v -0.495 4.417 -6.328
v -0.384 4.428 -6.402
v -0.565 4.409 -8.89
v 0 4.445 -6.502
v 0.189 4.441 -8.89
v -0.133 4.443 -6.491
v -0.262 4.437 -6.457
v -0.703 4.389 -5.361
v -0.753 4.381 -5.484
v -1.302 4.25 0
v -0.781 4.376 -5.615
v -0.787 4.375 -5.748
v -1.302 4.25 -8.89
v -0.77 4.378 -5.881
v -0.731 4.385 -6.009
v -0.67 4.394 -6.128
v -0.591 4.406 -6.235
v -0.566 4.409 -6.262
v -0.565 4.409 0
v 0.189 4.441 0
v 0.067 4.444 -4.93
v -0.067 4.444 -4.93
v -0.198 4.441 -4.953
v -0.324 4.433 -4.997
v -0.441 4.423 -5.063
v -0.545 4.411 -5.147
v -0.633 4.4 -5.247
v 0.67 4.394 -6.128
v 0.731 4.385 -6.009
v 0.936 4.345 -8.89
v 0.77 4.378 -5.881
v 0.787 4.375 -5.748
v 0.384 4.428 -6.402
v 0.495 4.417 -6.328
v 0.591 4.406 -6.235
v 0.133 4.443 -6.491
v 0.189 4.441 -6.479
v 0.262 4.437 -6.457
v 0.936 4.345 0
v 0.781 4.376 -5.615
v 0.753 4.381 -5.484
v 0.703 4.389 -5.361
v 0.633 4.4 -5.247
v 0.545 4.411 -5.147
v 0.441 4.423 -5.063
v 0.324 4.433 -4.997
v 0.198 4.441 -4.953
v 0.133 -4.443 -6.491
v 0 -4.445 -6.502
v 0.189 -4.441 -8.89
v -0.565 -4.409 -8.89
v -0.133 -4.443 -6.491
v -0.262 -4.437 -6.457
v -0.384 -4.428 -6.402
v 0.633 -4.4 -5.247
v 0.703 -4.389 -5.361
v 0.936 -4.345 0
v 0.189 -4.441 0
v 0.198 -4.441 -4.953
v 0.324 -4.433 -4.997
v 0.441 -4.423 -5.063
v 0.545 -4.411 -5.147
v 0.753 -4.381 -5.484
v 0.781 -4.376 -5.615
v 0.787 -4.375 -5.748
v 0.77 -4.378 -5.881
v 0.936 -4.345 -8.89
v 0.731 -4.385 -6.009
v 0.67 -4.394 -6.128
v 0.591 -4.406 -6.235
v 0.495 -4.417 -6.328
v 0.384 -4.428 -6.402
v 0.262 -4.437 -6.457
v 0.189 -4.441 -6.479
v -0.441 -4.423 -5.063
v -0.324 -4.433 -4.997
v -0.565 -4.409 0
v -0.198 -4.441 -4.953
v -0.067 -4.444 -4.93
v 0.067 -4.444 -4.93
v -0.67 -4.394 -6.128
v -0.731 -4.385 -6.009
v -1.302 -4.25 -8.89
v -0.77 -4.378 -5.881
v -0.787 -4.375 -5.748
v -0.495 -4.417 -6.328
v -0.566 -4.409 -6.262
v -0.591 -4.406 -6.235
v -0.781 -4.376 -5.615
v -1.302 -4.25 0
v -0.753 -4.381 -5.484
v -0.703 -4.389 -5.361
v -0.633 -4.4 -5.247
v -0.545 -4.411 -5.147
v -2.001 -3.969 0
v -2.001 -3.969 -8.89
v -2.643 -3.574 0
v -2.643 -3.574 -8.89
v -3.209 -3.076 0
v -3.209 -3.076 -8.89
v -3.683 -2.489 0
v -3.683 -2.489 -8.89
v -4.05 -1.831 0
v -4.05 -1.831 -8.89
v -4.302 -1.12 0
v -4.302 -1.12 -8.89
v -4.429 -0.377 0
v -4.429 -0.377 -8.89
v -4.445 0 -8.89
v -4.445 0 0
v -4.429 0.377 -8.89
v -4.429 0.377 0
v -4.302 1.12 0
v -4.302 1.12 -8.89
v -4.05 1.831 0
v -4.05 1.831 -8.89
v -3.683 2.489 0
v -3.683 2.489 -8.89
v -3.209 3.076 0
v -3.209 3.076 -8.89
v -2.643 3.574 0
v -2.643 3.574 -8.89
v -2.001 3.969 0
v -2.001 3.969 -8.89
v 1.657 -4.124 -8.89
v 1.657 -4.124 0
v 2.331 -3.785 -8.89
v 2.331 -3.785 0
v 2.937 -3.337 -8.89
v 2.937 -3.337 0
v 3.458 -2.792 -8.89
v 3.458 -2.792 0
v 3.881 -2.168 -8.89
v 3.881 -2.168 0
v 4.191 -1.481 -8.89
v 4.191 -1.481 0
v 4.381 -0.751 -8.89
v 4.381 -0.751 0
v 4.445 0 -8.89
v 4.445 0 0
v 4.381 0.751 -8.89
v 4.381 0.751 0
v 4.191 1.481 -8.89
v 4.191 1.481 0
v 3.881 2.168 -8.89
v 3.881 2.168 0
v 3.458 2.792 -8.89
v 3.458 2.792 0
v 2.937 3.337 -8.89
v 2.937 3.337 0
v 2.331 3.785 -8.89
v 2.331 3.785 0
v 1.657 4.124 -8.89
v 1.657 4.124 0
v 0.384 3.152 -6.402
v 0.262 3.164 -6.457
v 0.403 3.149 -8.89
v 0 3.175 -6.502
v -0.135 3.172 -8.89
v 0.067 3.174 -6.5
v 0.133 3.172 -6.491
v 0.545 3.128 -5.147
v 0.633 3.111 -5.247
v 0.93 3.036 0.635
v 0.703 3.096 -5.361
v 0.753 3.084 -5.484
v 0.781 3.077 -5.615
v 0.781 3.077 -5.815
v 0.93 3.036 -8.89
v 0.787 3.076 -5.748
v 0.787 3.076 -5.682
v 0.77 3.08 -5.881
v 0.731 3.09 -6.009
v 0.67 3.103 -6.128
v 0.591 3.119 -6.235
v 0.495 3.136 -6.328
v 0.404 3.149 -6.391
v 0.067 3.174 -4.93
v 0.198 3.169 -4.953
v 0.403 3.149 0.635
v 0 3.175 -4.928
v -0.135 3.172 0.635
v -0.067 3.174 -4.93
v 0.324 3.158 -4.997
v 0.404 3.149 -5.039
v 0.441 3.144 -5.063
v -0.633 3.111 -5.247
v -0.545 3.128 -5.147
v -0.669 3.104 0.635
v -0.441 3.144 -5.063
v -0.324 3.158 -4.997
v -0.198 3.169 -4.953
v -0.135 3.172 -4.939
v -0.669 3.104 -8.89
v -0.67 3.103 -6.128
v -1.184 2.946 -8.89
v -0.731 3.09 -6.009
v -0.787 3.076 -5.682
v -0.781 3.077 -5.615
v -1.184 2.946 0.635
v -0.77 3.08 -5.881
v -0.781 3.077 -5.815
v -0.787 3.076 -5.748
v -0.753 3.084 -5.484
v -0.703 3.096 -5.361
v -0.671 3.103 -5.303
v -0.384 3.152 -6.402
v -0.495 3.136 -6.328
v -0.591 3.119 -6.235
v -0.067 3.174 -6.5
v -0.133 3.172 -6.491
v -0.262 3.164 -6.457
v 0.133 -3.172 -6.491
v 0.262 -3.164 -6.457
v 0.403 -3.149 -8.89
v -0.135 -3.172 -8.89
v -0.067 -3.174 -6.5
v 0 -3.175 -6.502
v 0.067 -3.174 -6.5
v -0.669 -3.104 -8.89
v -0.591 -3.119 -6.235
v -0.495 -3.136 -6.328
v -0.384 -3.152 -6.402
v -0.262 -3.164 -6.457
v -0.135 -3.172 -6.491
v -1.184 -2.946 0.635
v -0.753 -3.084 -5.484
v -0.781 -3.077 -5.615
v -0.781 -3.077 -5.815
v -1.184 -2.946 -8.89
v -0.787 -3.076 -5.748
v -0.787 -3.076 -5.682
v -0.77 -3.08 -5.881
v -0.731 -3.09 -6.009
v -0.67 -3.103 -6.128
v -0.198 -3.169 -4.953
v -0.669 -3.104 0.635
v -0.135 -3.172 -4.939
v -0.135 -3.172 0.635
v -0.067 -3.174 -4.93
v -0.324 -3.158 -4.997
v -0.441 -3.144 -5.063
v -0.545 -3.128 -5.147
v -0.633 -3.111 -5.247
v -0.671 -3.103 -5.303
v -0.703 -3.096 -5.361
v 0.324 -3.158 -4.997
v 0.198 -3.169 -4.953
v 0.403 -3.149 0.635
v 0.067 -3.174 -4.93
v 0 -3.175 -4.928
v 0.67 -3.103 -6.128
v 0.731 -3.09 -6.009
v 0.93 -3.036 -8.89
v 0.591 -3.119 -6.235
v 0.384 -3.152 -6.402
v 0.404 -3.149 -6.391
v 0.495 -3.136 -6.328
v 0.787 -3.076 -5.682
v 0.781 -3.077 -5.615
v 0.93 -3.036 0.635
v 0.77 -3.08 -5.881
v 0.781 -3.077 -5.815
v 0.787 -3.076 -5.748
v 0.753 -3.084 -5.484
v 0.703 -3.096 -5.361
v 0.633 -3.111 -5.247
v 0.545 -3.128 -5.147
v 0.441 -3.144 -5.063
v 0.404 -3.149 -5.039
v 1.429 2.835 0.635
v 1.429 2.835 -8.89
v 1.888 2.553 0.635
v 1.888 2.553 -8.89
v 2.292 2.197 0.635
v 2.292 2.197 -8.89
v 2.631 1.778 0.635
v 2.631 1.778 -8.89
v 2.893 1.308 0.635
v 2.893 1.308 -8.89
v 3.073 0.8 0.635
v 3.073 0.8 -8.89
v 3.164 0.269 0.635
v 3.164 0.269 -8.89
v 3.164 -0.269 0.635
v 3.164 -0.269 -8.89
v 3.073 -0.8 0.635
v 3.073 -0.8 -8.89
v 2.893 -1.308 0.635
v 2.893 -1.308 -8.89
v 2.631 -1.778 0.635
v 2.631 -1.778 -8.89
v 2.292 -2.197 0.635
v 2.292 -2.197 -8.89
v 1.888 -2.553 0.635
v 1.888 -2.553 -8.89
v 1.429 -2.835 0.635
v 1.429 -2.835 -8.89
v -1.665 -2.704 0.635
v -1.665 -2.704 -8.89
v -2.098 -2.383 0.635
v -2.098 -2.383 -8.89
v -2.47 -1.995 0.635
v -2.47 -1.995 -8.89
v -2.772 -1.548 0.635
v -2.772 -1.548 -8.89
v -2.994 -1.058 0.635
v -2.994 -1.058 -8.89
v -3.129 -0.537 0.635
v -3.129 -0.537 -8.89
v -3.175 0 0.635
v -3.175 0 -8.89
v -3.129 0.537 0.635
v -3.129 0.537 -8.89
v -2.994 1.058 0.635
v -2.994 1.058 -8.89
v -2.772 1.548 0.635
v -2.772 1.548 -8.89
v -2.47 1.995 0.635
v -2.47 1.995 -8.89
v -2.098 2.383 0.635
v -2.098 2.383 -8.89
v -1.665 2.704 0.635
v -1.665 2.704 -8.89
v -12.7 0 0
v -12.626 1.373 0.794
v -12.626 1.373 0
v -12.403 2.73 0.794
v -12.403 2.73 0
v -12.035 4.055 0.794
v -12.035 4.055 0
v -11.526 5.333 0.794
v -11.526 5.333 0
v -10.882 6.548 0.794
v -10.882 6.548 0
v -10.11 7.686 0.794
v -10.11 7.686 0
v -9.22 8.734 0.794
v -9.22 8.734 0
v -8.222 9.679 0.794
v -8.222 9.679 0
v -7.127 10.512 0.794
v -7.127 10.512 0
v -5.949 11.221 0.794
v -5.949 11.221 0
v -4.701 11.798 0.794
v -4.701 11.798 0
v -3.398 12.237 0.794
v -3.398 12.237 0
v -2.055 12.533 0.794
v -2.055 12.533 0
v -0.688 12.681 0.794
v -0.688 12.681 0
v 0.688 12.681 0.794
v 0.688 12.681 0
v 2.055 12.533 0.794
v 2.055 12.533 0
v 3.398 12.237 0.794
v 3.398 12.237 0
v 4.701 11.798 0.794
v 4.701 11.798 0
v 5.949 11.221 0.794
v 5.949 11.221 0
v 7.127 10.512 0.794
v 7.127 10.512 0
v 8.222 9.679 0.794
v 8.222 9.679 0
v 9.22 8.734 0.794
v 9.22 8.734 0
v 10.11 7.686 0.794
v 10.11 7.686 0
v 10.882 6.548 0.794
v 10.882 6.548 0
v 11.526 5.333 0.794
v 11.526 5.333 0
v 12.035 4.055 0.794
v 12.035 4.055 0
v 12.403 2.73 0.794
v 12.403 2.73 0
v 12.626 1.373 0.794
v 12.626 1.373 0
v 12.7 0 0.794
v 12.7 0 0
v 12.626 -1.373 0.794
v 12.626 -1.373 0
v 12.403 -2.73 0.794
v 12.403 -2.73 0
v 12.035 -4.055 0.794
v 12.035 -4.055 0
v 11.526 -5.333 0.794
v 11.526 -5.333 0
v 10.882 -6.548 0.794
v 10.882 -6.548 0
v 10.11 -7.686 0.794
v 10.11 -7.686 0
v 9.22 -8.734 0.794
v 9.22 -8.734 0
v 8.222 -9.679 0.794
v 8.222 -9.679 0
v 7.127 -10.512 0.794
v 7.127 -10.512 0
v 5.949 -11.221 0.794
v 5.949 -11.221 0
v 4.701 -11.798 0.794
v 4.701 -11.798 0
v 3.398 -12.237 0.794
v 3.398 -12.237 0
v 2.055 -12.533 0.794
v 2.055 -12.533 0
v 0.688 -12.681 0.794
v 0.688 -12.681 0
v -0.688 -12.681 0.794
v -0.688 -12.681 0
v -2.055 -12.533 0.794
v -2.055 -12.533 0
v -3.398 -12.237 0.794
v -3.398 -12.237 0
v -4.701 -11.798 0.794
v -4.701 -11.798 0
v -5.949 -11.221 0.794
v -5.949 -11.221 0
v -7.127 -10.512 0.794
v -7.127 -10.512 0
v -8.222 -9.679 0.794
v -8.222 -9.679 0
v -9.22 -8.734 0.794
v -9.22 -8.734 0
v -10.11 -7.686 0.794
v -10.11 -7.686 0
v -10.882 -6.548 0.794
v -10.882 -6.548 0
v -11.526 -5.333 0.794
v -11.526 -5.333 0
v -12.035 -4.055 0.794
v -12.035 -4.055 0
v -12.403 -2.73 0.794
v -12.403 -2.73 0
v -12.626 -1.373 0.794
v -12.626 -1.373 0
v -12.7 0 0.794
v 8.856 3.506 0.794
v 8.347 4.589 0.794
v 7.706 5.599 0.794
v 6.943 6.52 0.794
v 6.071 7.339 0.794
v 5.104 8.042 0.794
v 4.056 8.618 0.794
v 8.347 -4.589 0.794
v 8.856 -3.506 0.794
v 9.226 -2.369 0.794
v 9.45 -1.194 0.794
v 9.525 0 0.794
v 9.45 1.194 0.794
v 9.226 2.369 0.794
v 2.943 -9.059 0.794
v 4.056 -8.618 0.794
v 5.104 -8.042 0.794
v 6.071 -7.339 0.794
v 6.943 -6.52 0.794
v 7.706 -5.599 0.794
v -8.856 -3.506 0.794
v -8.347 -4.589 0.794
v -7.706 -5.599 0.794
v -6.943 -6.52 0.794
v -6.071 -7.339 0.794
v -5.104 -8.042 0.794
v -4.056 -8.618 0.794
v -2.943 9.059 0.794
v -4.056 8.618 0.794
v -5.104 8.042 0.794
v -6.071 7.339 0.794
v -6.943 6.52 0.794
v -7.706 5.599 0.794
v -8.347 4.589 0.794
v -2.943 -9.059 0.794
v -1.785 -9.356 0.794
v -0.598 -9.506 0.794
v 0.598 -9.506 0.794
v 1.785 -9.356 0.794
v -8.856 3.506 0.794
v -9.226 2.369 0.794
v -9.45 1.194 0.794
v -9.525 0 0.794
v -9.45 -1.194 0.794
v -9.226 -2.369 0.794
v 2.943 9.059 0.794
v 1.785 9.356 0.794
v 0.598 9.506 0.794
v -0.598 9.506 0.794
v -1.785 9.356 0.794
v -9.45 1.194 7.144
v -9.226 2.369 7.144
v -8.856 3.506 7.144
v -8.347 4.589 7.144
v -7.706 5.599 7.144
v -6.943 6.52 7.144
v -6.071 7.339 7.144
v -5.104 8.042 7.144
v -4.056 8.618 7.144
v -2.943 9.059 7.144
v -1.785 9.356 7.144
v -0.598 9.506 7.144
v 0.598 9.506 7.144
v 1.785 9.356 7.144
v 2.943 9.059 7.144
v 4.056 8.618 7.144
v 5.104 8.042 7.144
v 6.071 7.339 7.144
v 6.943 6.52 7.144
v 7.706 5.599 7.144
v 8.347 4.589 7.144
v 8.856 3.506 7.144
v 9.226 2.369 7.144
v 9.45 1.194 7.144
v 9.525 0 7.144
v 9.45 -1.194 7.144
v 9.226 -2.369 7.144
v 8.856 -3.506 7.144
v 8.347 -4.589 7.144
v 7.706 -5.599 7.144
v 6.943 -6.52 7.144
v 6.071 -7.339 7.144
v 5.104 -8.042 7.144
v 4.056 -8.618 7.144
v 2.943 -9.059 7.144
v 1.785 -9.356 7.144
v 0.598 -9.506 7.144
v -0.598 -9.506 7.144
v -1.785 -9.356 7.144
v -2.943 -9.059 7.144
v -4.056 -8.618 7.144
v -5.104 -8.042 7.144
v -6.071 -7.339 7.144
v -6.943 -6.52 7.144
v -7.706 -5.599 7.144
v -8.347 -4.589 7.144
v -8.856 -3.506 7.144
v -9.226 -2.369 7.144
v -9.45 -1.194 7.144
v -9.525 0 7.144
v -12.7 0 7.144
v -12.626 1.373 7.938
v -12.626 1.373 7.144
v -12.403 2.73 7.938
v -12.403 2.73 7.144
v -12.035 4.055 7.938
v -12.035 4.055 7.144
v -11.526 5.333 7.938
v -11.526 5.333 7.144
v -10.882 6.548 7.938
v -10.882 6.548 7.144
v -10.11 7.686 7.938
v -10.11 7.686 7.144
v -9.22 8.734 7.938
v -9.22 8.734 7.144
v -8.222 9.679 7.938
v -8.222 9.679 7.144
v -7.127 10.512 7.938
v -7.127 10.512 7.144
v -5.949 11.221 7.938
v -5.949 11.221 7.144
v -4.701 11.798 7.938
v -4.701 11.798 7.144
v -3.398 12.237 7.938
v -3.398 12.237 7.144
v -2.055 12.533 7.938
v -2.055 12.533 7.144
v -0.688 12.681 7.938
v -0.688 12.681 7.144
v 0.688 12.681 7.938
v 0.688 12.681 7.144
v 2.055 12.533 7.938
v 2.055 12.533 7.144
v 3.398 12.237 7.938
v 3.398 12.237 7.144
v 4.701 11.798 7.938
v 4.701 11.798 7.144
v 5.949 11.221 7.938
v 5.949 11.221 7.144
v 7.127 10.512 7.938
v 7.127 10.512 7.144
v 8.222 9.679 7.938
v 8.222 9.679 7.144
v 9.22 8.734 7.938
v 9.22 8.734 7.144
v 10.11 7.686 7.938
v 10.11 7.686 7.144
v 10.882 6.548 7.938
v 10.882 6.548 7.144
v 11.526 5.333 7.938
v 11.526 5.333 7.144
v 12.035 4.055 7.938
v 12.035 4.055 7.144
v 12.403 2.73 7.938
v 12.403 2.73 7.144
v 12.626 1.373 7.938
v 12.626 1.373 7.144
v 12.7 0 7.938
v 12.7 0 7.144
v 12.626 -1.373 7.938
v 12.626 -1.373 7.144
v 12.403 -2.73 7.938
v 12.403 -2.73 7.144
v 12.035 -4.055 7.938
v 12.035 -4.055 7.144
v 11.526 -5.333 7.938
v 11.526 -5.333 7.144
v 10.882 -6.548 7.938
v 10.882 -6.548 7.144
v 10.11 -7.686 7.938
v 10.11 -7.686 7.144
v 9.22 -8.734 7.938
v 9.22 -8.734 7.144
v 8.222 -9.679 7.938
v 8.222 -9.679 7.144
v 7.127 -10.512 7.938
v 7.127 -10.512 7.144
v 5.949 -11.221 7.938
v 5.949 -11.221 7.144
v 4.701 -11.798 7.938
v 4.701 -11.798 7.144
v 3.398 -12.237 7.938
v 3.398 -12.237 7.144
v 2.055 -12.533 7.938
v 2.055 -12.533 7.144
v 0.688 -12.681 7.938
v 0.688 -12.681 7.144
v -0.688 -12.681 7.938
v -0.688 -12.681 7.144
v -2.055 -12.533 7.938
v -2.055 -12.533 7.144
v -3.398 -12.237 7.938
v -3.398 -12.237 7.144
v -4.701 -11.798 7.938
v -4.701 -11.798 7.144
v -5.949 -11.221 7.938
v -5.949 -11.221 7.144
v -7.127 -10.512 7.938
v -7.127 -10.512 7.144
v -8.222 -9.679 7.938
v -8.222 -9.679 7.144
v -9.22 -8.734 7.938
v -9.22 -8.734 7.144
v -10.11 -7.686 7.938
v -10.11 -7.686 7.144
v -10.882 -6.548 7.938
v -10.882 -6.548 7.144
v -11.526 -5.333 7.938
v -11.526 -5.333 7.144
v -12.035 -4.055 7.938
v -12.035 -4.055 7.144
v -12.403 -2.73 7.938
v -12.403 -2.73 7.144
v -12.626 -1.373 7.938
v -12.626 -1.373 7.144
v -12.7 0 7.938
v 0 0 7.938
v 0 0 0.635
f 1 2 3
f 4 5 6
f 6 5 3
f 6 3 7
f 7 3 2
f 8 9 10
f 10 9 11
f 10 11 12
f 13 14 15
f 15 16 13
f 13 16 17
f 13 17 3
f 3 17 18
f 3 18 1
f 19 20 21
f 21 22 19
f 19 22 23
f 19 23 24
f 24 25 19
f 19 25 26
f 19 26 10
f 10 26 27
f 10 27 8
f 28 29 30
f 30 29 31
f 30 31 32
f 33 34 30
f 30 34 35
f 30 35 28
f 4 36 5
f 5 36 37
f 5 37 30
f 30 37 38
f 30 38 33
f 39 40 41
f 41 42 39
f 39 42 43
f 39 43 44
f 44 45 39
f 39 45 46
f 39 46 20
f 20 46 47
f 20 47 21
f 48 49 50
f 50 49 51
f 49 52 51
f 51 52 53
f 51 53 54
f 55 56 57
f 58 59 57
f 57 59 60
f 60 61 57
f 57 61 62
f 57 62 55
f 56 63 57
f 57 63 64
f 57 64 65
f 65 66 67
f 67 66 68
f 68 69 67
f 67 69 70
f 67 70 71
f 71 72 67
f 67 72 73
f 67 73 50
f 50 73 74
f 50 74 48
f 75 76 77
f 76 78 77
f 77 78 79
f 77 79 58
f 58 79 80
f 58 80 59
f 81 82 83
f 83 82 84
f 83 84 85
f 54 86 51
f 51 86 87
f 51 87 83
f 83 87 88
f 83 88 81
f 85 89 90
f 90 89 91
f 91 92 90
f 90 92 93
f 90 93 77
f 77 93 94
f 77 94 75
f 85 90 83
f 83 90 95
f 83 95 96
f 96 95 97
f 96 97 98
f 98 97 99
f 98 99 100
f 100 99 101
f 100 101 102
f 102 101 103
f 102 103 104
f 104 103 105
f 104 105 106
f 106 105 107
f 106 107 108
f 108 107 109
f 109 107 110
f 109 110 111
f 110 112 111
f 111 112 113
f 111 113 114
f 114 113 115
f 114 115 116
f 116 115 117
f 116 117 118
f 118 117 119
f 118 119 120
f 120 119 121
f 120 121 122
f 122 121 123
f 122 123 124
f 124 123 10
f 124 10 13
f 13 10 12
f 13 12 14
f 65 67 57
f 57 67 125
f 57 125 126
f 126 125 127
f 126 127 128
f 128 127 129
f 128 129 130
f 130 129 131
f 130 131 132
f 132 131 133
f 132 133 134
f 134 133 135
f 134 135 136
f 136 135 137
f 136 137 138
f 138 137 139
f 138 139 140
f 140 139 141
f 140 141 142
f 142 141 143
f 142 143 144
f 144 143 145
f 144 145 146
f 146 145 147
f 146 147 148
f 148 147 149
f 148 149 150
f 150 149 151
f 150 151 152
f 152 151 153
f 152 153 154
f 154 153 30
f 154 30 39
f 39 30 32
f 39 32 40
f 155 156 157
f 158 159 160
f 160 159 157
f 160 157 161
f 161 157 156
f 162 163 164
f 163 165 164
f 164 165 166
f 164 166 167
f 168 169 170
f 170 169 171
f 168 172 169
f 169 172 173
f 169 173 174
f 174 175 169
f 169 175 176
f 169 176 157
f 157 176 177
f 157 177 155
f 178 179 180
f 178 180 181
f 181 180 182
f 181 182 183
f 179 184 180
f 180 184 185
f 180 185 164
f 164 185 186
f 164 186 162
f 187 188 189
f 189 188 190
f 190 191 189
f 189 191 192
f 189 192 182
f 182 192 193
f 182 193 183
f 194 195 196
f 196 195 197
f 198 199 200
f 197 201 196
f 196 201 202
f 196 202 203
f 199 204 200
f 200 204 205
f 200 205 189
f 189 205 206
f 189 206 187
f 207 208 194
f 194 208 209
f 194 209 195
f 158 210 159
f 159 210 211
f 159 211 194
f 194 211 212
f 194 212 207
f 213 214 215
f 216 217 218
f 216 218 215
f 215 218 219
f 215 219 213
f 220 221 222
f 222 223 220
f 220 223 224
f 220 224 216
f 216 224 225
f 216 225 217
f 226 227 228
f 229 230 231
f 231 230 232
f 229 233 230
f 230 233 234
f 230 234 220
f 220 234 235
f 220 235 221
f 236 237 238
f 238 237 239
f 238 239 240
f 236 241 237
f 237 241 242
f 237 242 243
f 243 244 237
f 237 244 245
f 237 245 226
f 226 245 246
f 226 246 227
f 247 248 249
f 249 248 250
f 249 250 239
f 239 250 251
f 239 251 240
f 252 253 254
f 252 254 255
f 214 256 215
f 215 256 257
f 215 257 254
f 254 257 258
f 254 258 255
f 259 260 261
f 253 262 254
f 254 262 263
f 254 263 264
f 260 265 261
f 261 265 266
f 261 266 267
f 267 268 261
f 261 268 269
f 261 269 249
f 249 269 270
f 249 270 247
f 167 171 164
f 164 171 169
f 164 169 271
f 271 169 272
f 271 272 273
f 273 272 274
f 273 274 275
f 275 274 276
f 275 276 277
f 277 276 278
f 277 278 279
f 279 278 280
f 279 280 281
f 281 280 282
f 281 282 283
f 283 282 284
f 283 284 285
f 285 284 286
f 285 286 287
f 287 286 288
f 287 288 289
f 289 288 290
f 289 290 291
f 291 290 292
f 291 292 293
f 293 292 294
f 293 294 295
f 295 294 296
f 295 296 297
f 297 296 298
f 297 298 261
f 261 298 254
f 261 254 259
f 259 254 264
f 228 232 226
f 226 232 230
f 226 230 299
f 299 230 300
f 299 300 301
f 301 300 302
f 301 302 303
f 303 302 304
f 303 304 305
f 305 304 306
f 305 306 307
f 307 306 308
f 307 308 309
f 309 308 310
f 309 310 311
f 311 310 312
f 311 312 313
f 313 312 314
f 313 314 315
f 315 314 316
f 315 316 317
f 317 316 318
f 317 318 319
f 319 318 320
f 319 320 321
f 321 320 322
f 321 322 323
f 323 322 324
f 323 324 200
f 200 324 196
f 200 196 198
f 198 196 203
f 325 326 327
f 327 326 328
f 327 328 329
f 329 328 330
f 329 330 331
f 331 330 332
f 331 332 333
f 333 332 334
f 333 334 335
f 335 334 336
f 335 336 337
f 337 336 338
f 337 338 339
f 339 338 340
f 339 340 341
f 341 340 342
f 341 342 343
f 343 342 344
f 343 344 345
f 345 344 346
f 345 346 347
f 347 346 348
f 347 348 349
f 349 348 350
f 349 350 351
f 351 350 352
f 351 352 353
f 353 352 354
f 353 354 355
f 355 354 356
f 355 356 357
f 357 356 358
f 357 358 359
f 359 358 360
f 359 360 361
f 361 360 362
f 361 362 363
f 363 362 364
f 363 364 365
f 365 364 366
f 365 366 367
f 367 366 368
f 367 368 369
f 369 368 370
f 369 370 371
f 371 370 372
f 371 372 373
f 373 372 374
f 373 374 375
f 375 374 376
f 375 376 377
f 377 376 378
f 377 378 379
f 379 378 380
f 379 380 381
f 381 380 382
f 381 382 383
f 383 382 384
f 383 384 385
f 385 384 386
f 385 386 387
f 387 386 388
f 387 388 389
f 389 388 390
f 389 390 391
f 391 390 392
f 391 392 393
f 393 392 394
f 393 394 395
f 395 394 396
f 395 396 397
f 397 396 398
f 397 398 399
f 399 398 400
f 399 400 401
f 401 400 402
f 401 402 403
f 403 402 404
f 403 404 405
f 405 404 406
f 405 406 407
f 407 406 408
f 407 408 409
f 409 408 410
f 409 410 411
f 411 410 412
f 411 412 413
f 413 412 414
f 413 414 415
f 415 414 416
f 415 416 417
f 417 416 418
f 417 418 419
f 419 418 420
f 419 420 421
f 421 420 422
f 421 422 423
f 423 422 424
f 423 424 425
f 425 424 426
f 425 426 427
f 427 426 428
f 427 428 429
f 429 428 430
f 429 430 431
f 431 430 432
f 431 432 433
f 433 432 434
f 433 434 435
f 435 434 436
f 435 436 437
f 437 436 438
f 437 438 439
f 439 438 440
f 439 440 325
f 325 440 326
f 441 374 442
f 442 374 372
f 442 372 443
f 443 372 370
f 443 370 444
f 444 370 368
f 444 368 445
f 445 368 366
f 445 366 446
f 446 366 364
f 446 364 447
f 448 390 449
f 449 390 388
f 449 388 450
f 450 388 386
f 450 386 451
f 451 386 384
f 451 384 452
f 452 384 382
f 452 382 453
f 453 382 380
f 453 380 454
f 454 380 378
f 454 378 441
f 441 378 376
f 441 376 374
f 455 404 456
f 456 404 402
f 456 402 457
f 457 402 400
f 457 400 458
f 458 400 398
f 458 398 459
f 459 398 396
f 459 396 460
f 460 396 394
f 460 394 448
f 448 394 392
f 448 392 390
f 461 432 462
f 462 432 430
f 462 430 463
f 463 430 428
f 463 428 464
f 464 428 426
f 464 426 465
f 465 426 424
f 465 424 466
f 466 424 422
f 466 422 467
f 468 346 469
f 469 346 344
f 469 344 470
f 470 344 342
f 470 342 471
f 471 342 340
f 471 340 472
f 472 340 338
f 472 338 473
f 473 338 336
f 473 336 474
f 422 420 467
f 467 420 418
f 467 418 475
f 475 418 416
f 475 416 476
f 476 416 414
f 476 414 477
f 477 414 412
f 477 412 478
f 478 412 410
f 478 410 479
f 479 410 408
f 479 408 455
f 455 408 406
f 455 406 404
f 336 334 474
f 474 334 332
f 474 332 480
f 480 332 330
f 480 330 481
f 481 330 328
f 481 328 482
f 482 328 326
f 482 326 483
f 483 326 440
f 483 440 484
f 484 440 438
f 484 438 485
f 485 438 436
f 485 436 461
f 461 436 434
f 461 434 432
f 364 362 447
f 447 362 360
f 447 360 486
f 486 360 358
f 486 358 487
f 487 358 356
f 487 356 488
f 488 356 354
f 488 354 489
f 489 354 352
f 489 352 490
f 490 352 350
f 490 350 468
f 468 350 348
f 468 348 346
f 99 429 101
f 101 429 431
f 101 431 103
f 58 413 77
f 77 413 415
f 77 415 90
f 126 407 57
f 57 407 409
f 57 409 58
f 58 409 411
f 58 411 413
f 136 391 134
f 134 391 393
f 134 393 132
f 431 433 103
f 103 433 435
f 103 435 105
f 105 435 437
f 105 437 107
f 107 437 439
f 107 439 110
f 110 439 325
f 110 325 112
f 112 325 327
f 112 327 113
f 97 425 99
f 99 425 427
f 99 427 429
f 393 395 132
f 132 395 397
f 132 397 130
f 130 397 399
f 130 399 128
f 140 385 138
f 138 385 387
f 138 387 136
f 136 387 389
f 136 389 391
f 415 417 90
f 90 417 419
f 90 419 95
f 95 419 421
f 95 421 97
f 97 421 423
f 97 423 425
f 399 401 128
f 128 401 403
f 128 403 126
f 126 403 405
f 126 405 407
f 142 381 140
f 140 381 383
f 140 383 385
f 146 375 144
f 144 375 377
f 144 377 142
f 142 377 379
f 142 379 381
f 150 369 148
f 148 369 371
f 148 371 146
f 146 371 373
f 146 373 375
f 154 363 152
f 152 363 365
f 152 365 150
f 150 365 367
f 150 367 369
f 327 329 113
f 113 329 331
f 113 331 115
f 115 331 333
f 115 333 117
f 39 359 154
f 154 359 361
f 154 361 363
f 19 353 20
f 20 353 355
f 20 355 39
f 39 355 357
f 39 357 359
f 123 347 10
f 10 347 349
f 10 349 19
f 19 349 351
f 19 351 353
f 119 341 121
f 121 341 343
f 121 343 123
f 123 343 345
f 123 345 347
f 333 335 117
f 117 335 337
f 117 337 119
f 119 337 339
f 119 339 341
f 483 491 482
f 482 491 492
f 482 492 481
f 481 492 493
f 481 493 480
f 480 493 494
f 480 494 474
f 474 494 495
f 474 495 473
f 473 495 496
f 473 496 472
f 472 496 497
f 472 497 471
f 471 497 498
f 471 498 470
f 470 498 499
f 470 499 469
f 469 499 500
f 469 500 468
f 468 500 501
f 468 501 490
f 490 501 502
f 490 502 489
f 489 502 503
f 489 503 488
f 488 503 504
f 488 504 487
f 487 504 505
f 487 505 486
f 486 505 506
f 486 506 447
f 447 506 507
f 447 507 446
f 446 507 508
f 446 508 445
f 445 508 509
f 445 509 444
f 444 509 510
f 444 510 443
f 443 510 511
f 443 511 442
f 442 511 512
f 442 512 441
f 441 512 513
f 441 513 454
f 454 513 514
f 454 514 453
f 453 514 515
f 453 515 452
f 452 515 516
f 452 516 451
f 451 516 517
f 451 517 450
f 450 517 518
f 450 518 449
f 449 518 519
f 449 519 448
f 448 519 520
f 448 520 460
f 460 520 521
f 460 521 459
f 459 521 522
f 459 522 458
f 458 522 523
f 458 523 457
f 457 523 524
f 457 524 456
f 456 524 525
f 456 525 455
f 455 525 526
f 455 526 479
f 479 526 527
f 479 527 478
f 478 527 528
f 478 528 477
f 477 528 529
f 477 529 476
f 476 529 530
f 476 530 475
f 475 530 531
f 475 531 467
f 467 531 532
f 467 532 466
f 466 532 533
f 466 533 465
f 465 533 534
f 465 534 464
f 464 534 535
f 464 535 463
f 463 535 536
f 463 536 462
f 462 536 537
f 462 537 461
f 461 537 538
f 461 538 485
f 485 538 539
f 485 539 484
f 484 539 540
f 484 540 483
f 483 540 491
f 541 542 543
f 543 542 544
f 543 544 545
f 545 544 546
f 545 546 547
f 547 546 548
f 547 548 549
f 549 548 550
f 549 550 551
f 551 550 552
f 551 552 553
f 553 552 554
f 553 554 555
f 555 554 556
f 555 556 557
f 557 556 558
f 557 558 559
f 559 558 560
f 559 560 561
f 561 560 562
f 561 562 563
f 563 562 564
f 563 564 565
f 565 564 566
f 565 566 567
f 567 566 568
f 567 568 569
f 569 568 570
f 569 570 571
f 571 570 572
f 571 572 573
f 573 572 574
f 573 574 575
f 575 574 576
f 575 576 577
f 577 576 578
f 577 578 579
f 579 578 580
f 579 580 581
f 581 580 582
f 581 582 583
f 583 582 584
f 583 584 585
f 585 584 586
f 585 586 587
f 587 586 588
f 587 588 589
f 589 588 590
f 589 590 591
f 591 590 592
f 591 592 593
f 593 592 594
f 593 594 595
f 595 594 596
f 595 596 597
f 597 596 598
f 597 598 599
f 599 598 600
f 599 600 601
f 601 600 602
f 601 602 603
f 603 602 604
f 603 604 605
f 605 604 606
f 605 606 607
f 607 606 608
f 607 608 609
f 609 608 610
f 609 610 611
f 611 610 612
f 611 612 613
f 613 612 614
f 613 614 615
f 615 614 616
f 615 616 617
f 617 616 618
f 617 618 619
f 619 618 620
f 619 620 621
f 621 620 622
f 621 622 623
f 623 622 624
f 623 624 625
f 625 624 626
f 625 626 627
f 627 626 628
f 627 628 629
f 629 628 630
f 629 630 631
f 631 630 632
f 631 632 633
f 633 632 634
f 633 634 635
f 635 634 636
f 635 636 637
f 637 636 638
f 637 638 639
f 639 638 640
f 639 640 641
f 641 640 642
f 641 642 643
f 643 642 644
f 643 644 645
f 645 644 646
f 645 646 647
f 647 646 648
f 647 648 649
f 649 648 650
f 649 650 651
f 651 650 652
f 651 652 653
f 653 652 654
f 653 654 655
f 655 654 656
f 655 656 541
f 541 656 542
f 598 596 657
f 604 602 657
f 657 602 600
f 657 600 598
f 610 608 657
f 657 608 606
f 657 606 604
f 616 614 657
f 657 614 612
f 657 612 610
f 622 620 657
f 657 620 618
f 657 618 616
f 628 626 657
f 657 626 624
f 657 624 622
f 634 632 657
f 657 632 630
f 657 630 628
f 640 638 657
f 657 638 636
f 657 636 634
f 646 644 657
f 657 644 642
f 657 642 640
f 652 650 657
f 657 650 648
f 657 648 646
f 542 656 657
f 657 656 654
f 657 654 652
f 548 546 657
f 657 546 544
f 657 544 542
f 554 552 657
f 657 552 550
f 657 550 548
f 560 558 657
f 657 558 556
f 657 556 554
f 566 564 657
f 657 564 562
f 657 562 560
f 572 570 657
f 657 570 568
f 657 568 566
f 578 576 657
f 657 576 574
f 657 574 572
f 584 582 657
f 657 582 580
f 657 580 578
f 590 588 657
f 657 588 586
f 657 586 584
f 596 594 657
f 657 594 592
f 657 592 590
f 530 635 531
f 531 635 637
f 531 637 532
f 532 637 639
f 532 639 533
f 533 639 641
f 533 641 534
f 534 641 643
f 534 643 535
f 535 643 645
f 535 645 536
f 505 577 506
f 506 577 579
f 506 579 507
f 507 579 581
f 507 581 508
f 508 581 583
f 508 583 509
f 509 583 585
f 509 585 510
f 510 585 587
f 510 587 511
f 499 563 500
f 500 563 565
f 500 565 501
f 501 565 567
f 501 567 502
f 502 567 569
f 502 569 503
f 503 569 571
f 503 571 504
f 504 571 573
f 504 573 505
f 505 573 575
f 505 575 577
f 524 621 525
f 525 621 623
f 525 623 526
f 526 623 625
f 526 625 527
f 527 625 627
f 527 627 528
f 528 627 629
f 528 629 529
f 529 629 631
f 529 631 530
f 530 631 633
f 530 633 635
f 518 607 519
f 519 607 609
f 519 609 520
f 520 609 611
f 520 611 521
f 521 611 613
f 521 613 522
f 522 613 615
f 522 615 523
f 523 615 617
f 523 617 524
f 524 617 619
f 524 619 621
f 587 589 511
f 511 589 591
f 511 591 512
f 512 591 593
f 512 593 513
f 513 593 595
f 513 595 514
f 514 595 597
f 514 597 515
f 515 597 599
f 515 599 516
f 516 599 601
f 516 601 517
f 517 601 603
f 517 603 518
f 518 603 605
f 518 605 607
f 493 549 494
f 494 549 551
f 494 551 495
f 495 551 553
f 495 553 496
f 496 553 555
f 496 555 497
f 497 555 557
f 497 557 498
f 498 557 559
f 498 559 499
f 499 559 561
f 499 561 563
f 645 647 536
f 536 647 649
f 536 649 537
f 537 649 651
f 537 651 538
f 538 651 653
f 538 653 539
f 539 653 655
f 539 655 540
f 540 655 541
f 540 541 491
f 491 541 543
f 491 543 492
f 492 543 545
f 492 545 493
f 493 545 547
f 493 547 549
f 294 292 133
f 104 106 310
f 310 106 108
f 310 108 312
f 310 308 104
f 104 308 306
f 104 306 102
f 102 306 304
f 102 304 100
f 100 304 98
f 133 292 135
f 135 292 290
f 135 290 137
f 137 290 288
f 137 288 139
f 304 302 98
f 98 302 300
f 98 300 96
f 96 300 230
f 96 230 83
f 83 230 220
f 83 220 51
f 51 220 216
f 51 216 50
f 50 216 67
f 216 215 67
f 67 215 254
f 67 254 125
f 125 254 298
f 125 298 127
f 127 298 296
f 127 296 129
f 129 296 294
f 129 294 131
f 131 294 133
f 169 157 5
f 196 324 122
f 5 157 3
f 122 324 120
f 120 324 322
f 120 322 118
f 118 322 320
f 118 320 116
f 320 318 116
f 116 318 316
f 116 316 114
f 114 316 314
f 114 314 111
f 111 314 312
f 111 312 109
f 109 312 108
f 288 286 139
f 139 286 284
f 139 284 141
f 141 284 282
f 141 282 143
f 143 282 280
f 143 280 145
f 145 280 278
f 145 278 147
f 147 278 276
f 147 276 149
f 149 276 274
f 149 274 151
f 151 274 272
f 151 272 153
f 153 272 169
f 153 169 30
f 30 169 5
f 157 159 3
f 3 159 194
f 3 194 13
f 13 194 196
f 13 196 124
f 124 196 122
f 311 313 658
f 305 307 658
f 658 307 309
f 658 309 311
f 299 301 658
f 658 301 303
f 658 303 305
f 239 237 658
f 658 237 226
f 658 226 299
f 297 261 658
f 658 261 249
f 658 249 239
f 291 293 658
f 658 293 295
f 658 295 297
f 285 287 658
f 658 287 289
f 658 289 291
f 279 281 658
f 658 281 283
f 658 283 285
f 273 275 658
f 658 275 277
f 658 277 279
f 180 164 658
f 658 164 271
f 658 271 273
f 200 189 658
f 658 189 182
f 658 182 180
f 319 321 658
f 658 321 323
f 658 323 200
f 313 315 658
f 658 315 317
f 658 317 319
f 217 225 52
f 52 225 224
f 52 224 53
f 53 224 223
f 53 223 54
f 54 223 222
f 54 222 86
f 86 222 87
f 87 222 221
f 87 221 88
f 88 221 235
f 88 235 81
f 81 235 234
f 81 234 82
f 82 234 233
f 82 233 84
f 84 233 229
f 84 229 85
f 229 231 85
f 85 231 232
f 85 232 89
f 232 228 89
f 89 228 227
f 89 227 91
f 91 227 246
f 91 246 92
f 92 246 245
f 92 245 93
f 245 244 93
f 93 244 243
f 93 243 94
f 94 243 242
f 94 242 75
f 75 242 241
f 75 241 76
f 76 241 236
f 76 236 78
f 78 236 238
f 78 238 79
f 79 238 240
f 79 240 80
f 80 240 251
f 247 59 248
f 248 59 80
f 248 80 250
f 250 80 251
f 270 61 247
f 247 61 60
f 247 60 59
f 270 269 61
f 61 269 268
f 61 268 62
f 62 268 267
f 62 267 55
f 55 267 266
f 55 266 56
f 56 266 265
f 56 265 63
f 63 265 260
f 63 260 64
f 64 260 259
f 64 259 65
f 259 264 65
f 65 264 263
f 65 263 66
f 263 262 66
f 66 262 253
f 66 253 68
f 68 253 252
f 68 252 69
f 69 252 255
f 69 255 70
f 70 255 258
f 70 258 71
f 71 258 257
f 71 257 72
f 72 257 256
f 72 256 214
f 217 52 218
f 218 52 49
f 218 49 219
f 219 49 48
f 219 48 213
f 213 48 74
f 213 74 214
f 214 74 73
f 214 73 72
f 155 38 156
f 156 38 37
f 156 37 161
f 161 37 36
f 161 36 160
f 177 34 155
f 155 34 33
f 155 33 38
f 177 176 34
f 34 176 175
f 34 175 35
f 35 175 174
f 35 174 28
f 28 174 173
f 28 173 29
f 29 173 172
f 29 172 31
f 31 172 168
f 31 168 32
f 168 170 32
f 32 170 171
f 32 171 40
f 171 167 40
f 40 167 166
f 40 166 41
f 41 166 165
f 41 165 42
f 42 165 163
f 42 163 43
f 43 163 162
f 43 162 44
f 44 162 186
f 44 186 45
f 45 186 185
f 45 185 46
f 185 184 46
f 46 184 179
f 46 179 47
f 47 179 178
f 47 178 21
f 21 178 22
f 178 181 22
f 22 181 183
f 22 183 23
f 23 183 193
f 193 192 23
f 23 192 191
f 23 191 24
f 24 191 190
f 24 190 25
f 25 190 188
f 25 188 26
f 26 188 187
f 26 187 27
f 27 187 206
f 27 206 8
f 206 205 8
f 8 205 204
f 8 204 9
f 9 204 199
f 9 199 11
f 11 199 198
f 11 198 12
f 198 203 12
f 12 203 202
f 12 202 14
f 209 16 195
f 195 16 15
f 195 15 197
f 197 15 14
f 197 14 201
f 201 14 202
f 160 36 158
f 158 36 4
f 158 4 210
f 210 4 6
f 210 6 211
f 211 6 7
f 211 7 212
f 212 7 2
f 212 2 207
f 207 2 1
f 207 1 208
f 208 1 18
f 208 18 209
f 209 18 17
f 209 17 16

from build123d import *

# Parameters (mm, degrees)
SKETCH1_R               = 12.7
BOSS_EXTRUDE1_DEPTH     = 0.79375
SKETCH2_R               = 9.525
BOSS_EXTRUDE2_DEPTH     = 6.35
SKETCH3_R               = 12.7
BOSS_EXTRUDE3_DEPTH     = 0.79375
SKETCH4_R               = 4.445
BOSS_EXTRUDE4_DEPTH     = 8.89
SKETCH5_R               = 3.175
CUT_EXTRUDE1_DEPTH      = 9.525
CUT_EXTRUDE2_DEPTH      = 25.4
CUT_EXTRUDE2_DEPTH_BACK = 25.4
SKETCH6_R               = 0.7874


with BuildPart() as part:
    # Sketch1 → Boss-Extrude1 (new body)
    with BuildSketch(Plane.XY):
        Circle(SKETCH1_R)
    extrude(amount=BOSS_EXTRUDE1_DEPTH)

    # Sketch2 → Boss-Extrude2 (add)
    with BuildSketch(Plane.XY.offset(0.79375)):
        Circle(SKETCH2_R)
    extrude(amount=BOSS_EXTRUDE2_DEPTH)

    # Sketch3 → Boss-Extrude3 (add)
    with BuildSketch(Plane.XY.offset(7.14375)):
        Circle(SKETCH3_R)
    extrude(amount=BOSS_EXTRUDE3_DEPTH)

    # Sketch4 → Boss-Extrude4 (add)
    with BuildSketch(Plane(origin=(0, 0, 0), x_dir=(-1, 0, 0), z_dir=(0, 0, -1))):
        Circle(SKETCH4_R)
    extrude(amount=BOSS_EXTRUDE4_DEPTH)

    # Sketch5 → Cut-Extrude1 (cut)
    with BuildSketch(Plane(origin=(0, 0, -8.89), x_dir=(-1, 0, 0), z_dir=(0, 0, -1))):
        Circle(SKETCH5_R)
    extrude(amount=-CUT_EXTRUDE1_DEPTH, mode=Mode.SUBTRACT)

    # Sketch6 → Cut-Extrude2 (cut, two sides: drawn at the far end of the back side and taken through both)
    with BuildSketch(Plane(origin=(0, 0, 0), x_dir=(1, 0, 0), z_dir=(0, 1, 0)).offset(-CUT_EXTRUDE2_DEPTH_BACK)):
        with Locations((0, 5.715)):
            Circle(SKETCH6_R)
    extrude(amount=CUT_EXTRUDE2_DEPTH + CUT_EXTRUDE2_DEPTH_BACK, mode=Mode.SUBTRACT)


solid = part.part
